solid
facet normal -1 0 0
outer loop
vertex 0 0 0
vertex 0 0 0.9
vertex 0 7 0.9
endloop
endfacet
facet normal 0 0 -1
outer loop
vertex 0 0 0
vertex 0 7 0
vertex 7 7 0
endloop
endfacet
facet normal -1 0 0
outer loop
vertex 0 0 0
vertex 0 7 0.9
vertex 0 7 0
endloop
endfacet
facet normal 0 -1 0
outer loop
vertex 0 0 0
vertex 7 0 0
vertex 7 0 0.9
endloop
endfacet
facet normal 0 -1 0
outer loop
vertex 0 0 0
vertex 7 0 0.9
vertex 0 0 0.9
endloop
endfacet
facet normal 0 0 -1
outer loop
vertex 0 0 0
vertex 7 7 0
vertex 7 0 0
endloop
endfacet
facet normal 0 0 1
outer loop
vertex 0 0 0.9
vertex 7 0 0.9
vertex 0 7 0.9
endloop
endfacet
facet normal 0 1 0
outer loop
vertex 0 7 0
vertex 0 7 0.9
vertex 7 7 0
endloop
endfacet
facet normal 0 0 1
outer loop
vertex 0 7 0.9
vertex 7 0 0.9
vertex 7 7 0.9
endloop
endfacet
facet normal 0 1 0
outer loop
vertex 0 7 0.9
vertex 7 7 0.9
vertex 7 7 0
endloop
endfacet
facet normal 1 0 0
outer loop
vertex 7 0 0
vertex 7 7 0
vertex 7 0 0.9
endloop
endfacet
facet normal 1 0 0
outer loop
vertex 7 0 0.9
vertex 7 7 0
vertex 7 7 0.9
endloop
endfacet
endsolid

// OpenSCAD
/* Warning, this is a very basic generator with a lot of approximation 
input data : [VQFN, PWA, 7x7x0.9mm, 48, , B, C04-01125B]
generated by com.zoubworld.electronics.cad.model3d.Basic
Date : Sun Feb 15 10:50:49 CET 2026
*/

//body
color("black")
translate([0,0,0])
cube([7.0,7.0,0.9], center=false);
